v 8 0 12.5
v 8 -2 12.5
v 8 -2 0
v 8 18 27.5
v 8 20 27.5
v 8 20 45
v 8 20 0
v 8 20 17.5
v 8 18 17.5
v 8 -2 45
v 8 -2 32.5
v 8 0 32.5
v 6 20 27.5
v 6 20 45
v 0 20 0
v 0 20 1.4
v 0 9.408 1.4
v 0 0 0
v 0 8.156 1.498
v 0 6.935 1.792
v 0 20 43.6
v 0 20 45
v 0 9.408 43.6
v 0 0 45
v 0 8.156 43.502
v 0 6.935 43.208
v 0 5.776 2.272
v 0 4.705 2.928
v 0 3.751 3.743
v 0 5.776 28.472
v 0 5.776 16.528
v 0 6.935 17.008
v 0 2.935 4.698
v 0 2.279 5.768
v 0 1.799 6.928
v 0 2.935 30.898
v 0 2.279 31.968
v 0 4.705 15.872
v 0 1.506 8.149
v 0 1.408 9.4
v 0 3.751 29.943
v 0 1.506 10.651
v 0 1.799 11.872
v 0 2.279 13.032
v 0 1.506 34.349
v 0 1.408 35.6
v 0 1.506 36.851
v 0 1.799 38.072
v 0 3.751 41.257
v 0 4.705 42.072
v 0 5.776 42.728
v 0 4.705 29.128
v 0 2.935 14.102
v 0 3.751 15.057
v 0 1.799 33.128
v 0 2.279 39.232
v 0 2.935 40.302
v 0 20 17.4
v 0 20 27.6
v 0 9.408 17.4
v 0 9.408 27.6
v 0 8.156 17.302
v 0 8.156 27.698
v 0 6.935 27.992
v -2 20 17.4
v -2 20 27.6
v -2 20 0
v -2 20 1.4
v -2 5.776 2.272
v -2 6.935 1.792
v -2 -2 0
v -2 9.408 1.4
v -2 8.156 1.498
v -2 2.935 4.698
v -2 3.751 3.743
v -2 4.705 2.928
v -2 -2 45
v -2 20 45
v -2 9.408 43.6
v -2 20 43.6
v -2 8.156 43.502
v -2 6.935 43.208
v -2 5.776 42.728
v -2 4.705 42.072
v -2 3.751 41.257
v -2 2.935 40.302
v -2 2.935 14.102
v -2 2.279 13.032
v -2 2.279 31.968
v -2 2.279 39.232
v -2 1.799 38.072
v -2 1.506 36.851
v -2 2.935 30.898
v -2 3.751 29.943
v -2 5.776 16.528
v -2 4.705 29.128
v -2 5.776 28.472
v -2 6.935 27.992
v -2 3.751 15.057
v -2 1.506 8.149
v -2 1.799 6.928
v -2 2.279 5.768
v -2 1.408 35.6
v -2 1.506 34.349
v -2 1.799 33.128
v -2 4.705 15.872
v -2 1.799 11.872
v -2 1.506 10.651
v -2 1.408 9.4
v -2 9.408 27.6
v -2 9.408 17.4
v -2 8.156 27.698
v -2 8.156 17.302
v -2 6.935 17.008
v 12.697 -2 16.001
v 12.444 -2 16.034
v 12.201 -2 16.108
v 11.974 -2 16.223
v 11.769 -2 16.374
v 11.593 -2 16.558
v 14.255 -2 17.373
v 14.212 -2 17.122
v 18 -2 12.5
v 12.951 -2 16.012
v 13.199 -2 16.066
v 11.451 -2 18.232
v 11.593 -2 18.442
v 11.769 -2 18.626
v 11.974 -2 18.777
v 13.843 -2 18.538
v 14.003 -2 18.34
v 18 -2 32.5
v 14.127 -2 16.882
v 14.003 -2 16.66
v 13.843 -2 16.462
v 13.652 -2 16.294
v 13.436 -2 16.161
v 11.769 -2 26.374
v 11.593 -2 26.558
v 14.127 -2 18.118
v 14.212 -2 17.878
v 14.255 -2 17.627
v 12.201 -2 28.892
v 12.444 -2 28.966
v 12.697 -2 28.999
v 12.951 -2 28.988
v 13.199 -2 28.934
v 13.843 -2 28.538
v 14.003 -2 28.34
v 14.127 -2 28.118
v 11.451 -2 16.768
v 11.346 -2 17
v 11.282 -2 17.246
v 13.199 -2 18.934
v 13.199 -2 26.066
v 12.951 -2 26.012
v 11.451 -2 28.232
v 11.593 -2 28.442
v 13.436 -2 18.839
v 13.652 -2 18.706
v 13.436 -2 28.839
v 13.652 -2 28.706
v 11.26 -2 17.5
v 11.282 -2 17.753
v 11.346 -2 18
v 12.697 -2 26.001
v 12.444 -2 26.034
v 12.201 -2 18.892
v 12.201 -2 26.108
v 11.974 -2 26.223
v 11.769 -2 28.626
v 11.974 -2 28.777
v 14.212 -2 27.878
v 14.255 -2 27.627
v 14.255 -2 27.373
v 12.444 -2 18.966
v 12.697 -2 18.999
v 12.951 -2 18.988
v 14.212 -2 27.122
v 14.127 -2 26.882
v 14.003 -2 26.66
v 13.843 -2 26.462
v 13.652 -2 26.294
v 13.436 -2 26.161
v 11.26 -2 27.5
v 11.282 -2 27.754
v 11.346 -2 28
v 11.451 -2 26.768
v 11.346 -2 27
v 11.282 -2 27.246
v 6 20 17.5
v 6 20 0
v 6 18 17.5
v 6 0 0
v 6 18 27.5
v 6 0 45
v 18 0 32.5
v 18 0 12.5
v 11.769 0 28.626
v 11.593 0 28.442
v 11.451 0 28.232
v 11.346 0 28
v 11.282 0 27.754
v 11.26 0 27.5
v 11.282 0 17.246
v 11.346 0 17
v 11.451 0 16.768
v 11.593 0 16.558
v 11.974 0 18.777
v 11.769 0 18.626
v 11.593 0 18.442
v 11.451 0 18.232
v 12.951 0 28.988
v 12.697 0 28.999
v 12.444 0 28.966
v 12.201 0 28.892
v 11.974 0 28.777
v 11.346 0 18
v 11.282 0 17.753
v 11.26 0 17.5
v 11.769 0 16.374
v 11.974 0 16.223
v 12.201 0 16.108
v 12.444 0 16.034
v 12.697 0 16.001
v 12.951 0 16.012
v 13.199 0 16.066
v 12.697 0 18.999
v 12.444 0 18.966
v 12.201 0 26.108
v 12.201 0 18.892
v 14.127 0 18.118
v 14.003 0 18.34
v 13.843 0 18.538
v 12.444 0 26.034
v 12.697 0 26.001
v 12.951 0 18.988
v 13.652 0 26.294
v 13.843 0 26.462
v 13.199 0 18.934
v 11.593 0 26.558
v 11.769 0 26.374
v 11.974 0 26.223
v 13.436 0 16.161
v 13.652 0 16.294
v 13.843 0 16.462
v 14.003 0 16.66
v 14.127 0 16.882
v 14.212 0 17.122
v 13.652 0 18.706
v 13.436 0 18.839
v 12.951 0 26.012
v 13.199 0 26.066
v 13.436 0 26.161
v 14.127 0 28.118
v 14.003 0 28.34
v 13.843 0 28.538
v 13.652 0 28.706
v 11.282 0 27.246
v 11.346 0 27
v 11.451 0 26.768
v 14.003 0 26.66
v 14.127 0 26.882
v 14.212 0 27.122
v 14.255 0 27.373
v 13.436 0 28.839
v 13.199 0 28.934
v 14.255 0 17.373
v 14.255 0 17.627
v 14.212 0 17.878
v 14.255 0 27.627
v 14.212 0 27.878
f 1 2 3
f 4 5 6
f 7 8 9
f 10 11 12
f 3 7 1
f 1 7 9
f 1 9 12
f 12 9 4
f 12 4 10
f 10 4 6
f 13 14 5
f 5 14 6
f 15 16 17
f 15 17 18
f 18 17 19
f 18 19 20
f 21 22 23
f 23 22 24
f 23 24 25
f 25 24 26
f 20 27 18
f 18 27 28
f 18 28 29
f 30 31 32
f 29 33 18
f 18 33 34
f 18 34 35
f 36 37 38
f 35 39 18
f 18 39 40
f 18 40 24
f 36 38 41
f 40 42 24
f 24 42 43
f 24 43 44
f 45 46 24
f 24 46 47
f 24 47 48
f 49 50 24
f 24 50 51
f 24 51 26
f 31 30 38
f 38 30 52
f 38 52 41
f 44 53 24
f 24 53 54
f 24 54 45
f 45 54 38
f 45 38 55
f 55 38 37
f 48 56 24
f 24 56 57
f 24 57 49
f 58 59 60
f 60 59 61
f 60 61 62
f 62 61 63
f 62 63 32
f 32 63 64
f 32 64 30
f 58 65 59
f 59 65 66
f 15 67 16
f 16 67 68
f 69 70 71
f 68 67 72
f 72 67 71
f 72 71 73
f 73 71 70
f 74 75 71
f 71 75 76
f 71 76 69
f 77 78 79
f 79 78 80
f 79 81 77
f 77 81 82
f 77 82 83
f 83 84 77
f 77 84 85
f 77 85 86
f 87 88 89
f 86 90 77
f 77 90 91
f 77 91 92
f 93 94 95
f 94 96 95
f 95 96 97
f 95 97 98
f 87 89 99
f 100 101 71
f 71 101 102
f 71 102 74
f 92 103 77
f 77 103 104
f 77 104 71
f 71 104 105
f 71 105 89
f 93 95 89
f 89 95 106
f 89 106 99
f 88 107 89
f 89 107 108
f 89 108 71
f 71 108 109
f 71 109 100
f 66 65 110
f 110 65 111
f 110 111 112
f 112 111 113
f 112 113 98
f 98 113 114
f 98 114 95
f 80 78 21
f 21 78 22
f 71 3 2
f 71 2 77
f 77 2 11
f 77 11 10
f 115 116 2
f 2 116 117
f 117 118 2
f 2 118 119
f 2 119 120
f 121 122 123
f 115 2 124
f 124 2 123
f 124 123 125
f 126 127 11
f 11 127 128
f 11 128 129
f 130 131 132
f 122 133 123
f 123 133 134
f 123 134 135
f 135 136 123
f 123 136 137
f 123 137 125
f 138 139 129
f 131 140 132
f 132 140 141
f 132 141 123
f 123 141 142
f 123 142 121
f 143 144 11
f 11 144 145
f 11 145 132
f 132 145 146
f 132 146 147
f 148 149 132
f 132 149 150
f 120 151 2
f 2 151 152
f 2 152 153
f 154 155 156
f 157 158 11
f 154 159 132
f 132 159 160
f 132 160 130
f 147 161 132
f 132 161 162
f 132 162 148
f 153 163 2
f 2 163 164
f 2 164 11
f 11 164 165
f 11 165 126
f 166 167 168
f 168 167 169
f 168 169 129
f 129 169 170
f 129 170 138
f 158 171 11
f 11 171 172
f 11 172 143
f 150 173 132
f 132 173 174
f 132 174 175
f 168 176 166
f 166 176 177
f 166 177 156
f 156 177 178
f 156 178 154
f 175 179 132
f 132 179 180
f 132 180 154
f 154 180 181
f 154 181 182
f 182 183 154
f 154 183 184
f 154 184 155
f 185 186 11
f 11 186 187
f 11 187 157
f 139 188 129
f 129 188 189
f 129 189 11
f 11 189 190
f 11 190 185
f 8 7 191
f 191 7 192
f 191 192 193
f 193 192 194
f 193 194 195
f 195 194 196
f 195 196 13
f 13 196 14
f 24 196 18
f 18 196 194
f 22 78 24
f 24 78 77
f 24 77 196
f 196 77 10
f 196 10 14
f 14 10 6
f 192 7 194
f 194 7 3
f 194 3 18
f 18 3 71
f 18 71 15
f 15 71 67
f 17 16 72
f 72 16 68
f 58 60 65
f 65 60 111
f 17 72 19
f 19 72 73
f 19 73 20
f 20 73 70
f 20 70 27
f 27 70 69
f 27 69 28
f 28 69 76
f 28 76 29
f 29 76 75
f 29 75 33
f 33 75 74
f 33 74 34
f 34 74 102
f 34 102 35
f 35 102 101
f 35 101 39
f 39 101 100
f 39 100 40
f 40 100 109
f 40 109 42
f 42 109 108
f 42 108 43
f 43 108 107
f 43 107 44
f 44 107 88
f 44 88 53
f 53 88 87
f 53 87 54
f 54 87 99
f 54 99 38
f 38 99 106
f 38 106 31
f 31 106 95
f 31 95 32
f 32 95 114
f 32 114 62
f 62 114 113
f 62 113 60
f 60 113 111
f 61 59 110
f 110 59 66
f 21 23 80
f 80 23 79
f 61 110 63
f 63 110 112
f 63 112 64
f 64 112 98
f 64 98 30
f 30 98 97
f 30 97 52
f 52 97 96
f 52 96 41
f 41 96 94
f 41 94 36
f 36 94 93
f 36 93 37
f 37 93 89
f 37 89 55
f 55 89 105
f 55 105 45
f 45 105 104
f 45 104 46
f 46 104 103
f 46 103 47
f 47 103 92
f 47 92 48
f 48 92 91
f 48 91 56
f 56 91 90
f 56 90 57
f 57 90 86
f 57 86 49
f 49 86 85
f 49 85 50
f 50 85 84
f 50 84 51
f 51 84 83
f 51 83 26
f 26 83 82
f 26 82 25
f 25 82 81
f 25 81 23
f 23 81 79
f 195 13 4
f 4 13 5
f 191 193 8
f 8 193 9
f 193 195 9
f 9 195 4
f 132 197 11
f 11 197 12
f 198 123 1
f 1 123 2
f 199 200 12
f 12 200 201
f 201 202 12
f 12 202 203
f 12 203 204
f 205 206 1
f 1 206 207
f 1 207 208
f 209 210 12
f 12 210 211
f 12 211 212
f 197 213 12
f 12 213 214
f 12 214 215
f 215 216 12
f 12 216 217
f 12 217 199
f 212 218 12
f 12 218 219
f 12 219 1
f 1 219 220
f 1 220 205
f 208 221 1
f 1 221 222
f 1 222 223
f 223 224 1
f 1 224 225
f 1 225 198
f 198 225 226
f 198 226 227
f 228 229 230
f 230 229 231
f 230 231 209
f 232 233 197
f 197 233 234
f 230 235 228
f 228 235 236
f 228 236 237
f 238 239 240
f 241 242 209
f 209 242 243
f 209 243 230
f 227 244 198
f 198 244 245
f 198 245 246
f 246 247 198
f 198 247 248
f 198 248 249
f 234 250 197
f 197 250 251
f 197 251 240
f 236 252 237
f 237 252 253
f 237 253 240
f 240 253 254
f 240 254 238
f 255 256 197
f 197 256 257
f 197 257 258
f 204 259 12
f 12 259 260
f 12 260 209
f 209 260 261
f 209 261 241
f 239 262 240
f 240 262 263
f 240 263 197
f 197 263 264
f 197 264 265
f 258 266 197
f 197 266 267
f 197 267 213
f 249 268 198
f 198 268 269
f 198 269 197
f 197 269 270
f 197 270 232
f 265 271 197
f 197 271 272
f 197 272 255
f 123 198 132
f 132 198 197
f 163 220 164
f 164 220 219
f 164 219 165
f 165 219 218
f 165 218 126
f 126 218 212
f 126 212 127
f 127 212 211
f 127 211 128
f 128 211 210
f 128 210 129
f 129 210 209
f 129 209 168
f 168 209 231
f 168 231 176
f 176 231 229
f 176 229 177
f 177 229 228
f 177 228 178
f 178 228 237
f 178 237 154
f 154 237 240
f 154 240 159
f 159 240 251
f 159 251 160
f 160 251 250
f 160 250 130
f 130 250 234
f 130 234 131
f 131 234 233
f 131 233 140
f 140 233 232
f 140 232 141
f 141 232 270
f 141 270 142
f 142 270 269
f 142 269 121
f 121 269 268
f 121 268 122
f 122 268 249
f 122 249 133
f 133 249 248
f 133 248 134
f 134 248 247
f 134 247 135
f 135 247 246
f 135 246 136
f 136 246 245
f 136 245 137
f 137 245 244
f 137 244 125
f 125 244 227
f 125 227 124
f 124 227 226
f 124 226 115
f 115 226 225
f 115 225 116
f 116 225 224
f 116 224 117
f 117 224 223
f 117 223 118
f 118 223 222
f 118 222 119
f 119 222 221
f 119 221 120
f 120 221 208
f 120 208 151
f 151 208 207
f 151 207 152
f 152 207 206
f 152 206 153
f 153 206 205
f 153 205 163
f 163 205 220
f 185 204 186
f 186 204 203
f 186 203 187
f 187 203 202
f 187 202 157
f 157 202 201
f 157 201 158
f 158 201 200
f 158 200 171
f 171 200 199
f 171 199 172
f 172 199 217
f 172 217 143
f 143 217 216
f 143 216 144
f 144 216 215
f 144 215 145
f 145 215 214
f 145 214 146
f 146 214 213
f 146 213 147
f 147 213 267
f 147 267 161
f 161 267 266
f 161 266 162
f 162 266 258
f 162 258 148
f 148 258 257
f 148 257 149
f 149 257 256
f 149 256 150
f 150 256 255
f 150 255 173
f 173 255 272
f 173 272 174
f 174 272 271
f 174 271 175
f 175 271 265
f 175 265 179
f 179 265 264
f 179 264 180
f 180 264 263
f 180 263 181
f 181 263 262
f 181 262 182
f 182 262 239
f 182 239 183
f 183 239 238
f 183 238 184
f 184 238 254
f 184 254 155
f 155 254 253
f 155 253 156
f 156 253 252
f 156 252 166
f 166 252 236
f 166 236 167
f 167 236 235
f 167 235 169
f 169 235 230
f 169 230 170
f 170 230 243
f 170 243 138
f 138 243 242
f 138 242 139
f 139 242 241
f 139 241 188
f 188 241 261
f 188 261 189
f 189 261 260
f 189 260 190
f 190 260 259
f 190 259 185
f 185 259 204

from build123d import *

# Parameters (mm, degrees)
BOSS_EXTRUDE1_DEPTH = 45
CUT_EXTRUDE1_DEPTH  = 2
SKETCH4_W           = 10
SKETCH4_H           = 2
CUT_EXTRUDE2_DEPTH  = 2
SKETCH5_W           = 20
SKETCH5_H           = 2
BOSS_EXTRUDE2_DEPTH = 10
SKETCH6_R           = 1.5
CUT_EXTRUDE3_DEPTH  = 2


with BuildPart() as part:
    # Sketch1 → Boss-Extrude1 (new body)
    with BuildSketch(Plane.XY):
        Polygon((0, 0), (6, 0), (6, 20), (8, 20), (8, -2), (-2, -2), (-2, 20), (0, 20), align=None)
    extrude(amount=BOSS_EXTRUDE1_DEPTH)

    # Sketch3 → Cut-Extrude1 (cut)
    with BuildSketch(Plane.ZY.offset(2)):
        with BuildLine():
            ThreePointArc((43.6, 9.407510361), (35.6, 17.407510361), (27.6, 9.407510361))
            Line((27.6, 9.407510361), (43.6, 9.407510361))
        make_face()
        with BuildLine():
            Line((43.6, 9.407510361), (27.6, 9.407510361))
            ThreePointArc((27.6, 9.407510361), (35.6, 1.407510361), (43.6, 9.407510361))
        make_face()
        with BuildLine():
            Line((1.4, 20), (1.4, 9.407510361))
            ThreePointArc((1.4, 9.407510361), (9.4, 17.407510361), (17.4, 9.407510361))
            Line((17.4, 9.407510361), (17.4, 20))
            Line((17.4, 20), (1.4, 20))
        make_face()
        with BuildLine():
            ThreePointArc((17.4, 9.407510361), (9.4, 17.407510361), (1.4, 9.407510361))
            Line((1.4, 9.407510361), (17.4, 9.407510361))
        make_face()
        with BuildLine():
            Line((17.4, 9.407510361), (1.4, 9.407510361))
            ThreePointArc((1.4, 9.407510361), (9.4, 1.407510361), (17.4, 9.407510361))
        make_face()
        with BuildLine():
            Line((43.6, 20), (27.6, 20))
            Line((27.6, 20), (27.6, 9.407510361))
            ThreePointArc((27.6, 9.407510361), (35.6, 17.407510361), (43.6, 9.407510361))
            Line((43.6, 9.407510361), (43.6, 20))
        make_face()
    extrude(amount=-CUT_EXTRUDE1_DEPTH, mode=Mode.SUBTRACT)

    # Sketch4 → Cut-Extrude2 (cut)
    with BuildSketch(Plane(origin=(8, 0, 0), x_dir=(0, 0, -1), z_dir=(1, 0, 0))):
        with Locations((-22.5, 19)):
            Rectangle(SKETCH4_W, SKETCH4_H)
    extrude(amount=-CUT_EXTRUDE2_DEPTH, mode=Mode.SUBTRACT)

    # Sketch5 → Boss-Extrude2 (add)
    with BuildSketch(Plane(origin=(8, 0, 0), x_dir=(0, 0, -1), z_dir=(1, 0, 0))):
        with Locations((-22.5, -1)):
            Rectangle(SKETCH5_W, SKETCH5_H)
    extrude(amount=BOSS_EXTRUDE2_DEPTH)

    # Sketch6 → Cut-Extrude3 (cut)
    with BuildSketch(Plane(origin=(0, 0, 0), x_dir=(1, 0, 0), z_dir=(0, 1, 0))):
        with Locations(Location((12.760241106, -27.5, 0), (0, 0, 180))):
            Circle(SKETCH6_R)
        with Locations(Location((12.760241106, -17.5, 0), (0, 0, 180))):
            Circle(SKETCH6_R)
    extrude(amount=-CUT_EXTRUDE3_DEPTH, mode=Mode.SUBTRACT)


solid = part.part
